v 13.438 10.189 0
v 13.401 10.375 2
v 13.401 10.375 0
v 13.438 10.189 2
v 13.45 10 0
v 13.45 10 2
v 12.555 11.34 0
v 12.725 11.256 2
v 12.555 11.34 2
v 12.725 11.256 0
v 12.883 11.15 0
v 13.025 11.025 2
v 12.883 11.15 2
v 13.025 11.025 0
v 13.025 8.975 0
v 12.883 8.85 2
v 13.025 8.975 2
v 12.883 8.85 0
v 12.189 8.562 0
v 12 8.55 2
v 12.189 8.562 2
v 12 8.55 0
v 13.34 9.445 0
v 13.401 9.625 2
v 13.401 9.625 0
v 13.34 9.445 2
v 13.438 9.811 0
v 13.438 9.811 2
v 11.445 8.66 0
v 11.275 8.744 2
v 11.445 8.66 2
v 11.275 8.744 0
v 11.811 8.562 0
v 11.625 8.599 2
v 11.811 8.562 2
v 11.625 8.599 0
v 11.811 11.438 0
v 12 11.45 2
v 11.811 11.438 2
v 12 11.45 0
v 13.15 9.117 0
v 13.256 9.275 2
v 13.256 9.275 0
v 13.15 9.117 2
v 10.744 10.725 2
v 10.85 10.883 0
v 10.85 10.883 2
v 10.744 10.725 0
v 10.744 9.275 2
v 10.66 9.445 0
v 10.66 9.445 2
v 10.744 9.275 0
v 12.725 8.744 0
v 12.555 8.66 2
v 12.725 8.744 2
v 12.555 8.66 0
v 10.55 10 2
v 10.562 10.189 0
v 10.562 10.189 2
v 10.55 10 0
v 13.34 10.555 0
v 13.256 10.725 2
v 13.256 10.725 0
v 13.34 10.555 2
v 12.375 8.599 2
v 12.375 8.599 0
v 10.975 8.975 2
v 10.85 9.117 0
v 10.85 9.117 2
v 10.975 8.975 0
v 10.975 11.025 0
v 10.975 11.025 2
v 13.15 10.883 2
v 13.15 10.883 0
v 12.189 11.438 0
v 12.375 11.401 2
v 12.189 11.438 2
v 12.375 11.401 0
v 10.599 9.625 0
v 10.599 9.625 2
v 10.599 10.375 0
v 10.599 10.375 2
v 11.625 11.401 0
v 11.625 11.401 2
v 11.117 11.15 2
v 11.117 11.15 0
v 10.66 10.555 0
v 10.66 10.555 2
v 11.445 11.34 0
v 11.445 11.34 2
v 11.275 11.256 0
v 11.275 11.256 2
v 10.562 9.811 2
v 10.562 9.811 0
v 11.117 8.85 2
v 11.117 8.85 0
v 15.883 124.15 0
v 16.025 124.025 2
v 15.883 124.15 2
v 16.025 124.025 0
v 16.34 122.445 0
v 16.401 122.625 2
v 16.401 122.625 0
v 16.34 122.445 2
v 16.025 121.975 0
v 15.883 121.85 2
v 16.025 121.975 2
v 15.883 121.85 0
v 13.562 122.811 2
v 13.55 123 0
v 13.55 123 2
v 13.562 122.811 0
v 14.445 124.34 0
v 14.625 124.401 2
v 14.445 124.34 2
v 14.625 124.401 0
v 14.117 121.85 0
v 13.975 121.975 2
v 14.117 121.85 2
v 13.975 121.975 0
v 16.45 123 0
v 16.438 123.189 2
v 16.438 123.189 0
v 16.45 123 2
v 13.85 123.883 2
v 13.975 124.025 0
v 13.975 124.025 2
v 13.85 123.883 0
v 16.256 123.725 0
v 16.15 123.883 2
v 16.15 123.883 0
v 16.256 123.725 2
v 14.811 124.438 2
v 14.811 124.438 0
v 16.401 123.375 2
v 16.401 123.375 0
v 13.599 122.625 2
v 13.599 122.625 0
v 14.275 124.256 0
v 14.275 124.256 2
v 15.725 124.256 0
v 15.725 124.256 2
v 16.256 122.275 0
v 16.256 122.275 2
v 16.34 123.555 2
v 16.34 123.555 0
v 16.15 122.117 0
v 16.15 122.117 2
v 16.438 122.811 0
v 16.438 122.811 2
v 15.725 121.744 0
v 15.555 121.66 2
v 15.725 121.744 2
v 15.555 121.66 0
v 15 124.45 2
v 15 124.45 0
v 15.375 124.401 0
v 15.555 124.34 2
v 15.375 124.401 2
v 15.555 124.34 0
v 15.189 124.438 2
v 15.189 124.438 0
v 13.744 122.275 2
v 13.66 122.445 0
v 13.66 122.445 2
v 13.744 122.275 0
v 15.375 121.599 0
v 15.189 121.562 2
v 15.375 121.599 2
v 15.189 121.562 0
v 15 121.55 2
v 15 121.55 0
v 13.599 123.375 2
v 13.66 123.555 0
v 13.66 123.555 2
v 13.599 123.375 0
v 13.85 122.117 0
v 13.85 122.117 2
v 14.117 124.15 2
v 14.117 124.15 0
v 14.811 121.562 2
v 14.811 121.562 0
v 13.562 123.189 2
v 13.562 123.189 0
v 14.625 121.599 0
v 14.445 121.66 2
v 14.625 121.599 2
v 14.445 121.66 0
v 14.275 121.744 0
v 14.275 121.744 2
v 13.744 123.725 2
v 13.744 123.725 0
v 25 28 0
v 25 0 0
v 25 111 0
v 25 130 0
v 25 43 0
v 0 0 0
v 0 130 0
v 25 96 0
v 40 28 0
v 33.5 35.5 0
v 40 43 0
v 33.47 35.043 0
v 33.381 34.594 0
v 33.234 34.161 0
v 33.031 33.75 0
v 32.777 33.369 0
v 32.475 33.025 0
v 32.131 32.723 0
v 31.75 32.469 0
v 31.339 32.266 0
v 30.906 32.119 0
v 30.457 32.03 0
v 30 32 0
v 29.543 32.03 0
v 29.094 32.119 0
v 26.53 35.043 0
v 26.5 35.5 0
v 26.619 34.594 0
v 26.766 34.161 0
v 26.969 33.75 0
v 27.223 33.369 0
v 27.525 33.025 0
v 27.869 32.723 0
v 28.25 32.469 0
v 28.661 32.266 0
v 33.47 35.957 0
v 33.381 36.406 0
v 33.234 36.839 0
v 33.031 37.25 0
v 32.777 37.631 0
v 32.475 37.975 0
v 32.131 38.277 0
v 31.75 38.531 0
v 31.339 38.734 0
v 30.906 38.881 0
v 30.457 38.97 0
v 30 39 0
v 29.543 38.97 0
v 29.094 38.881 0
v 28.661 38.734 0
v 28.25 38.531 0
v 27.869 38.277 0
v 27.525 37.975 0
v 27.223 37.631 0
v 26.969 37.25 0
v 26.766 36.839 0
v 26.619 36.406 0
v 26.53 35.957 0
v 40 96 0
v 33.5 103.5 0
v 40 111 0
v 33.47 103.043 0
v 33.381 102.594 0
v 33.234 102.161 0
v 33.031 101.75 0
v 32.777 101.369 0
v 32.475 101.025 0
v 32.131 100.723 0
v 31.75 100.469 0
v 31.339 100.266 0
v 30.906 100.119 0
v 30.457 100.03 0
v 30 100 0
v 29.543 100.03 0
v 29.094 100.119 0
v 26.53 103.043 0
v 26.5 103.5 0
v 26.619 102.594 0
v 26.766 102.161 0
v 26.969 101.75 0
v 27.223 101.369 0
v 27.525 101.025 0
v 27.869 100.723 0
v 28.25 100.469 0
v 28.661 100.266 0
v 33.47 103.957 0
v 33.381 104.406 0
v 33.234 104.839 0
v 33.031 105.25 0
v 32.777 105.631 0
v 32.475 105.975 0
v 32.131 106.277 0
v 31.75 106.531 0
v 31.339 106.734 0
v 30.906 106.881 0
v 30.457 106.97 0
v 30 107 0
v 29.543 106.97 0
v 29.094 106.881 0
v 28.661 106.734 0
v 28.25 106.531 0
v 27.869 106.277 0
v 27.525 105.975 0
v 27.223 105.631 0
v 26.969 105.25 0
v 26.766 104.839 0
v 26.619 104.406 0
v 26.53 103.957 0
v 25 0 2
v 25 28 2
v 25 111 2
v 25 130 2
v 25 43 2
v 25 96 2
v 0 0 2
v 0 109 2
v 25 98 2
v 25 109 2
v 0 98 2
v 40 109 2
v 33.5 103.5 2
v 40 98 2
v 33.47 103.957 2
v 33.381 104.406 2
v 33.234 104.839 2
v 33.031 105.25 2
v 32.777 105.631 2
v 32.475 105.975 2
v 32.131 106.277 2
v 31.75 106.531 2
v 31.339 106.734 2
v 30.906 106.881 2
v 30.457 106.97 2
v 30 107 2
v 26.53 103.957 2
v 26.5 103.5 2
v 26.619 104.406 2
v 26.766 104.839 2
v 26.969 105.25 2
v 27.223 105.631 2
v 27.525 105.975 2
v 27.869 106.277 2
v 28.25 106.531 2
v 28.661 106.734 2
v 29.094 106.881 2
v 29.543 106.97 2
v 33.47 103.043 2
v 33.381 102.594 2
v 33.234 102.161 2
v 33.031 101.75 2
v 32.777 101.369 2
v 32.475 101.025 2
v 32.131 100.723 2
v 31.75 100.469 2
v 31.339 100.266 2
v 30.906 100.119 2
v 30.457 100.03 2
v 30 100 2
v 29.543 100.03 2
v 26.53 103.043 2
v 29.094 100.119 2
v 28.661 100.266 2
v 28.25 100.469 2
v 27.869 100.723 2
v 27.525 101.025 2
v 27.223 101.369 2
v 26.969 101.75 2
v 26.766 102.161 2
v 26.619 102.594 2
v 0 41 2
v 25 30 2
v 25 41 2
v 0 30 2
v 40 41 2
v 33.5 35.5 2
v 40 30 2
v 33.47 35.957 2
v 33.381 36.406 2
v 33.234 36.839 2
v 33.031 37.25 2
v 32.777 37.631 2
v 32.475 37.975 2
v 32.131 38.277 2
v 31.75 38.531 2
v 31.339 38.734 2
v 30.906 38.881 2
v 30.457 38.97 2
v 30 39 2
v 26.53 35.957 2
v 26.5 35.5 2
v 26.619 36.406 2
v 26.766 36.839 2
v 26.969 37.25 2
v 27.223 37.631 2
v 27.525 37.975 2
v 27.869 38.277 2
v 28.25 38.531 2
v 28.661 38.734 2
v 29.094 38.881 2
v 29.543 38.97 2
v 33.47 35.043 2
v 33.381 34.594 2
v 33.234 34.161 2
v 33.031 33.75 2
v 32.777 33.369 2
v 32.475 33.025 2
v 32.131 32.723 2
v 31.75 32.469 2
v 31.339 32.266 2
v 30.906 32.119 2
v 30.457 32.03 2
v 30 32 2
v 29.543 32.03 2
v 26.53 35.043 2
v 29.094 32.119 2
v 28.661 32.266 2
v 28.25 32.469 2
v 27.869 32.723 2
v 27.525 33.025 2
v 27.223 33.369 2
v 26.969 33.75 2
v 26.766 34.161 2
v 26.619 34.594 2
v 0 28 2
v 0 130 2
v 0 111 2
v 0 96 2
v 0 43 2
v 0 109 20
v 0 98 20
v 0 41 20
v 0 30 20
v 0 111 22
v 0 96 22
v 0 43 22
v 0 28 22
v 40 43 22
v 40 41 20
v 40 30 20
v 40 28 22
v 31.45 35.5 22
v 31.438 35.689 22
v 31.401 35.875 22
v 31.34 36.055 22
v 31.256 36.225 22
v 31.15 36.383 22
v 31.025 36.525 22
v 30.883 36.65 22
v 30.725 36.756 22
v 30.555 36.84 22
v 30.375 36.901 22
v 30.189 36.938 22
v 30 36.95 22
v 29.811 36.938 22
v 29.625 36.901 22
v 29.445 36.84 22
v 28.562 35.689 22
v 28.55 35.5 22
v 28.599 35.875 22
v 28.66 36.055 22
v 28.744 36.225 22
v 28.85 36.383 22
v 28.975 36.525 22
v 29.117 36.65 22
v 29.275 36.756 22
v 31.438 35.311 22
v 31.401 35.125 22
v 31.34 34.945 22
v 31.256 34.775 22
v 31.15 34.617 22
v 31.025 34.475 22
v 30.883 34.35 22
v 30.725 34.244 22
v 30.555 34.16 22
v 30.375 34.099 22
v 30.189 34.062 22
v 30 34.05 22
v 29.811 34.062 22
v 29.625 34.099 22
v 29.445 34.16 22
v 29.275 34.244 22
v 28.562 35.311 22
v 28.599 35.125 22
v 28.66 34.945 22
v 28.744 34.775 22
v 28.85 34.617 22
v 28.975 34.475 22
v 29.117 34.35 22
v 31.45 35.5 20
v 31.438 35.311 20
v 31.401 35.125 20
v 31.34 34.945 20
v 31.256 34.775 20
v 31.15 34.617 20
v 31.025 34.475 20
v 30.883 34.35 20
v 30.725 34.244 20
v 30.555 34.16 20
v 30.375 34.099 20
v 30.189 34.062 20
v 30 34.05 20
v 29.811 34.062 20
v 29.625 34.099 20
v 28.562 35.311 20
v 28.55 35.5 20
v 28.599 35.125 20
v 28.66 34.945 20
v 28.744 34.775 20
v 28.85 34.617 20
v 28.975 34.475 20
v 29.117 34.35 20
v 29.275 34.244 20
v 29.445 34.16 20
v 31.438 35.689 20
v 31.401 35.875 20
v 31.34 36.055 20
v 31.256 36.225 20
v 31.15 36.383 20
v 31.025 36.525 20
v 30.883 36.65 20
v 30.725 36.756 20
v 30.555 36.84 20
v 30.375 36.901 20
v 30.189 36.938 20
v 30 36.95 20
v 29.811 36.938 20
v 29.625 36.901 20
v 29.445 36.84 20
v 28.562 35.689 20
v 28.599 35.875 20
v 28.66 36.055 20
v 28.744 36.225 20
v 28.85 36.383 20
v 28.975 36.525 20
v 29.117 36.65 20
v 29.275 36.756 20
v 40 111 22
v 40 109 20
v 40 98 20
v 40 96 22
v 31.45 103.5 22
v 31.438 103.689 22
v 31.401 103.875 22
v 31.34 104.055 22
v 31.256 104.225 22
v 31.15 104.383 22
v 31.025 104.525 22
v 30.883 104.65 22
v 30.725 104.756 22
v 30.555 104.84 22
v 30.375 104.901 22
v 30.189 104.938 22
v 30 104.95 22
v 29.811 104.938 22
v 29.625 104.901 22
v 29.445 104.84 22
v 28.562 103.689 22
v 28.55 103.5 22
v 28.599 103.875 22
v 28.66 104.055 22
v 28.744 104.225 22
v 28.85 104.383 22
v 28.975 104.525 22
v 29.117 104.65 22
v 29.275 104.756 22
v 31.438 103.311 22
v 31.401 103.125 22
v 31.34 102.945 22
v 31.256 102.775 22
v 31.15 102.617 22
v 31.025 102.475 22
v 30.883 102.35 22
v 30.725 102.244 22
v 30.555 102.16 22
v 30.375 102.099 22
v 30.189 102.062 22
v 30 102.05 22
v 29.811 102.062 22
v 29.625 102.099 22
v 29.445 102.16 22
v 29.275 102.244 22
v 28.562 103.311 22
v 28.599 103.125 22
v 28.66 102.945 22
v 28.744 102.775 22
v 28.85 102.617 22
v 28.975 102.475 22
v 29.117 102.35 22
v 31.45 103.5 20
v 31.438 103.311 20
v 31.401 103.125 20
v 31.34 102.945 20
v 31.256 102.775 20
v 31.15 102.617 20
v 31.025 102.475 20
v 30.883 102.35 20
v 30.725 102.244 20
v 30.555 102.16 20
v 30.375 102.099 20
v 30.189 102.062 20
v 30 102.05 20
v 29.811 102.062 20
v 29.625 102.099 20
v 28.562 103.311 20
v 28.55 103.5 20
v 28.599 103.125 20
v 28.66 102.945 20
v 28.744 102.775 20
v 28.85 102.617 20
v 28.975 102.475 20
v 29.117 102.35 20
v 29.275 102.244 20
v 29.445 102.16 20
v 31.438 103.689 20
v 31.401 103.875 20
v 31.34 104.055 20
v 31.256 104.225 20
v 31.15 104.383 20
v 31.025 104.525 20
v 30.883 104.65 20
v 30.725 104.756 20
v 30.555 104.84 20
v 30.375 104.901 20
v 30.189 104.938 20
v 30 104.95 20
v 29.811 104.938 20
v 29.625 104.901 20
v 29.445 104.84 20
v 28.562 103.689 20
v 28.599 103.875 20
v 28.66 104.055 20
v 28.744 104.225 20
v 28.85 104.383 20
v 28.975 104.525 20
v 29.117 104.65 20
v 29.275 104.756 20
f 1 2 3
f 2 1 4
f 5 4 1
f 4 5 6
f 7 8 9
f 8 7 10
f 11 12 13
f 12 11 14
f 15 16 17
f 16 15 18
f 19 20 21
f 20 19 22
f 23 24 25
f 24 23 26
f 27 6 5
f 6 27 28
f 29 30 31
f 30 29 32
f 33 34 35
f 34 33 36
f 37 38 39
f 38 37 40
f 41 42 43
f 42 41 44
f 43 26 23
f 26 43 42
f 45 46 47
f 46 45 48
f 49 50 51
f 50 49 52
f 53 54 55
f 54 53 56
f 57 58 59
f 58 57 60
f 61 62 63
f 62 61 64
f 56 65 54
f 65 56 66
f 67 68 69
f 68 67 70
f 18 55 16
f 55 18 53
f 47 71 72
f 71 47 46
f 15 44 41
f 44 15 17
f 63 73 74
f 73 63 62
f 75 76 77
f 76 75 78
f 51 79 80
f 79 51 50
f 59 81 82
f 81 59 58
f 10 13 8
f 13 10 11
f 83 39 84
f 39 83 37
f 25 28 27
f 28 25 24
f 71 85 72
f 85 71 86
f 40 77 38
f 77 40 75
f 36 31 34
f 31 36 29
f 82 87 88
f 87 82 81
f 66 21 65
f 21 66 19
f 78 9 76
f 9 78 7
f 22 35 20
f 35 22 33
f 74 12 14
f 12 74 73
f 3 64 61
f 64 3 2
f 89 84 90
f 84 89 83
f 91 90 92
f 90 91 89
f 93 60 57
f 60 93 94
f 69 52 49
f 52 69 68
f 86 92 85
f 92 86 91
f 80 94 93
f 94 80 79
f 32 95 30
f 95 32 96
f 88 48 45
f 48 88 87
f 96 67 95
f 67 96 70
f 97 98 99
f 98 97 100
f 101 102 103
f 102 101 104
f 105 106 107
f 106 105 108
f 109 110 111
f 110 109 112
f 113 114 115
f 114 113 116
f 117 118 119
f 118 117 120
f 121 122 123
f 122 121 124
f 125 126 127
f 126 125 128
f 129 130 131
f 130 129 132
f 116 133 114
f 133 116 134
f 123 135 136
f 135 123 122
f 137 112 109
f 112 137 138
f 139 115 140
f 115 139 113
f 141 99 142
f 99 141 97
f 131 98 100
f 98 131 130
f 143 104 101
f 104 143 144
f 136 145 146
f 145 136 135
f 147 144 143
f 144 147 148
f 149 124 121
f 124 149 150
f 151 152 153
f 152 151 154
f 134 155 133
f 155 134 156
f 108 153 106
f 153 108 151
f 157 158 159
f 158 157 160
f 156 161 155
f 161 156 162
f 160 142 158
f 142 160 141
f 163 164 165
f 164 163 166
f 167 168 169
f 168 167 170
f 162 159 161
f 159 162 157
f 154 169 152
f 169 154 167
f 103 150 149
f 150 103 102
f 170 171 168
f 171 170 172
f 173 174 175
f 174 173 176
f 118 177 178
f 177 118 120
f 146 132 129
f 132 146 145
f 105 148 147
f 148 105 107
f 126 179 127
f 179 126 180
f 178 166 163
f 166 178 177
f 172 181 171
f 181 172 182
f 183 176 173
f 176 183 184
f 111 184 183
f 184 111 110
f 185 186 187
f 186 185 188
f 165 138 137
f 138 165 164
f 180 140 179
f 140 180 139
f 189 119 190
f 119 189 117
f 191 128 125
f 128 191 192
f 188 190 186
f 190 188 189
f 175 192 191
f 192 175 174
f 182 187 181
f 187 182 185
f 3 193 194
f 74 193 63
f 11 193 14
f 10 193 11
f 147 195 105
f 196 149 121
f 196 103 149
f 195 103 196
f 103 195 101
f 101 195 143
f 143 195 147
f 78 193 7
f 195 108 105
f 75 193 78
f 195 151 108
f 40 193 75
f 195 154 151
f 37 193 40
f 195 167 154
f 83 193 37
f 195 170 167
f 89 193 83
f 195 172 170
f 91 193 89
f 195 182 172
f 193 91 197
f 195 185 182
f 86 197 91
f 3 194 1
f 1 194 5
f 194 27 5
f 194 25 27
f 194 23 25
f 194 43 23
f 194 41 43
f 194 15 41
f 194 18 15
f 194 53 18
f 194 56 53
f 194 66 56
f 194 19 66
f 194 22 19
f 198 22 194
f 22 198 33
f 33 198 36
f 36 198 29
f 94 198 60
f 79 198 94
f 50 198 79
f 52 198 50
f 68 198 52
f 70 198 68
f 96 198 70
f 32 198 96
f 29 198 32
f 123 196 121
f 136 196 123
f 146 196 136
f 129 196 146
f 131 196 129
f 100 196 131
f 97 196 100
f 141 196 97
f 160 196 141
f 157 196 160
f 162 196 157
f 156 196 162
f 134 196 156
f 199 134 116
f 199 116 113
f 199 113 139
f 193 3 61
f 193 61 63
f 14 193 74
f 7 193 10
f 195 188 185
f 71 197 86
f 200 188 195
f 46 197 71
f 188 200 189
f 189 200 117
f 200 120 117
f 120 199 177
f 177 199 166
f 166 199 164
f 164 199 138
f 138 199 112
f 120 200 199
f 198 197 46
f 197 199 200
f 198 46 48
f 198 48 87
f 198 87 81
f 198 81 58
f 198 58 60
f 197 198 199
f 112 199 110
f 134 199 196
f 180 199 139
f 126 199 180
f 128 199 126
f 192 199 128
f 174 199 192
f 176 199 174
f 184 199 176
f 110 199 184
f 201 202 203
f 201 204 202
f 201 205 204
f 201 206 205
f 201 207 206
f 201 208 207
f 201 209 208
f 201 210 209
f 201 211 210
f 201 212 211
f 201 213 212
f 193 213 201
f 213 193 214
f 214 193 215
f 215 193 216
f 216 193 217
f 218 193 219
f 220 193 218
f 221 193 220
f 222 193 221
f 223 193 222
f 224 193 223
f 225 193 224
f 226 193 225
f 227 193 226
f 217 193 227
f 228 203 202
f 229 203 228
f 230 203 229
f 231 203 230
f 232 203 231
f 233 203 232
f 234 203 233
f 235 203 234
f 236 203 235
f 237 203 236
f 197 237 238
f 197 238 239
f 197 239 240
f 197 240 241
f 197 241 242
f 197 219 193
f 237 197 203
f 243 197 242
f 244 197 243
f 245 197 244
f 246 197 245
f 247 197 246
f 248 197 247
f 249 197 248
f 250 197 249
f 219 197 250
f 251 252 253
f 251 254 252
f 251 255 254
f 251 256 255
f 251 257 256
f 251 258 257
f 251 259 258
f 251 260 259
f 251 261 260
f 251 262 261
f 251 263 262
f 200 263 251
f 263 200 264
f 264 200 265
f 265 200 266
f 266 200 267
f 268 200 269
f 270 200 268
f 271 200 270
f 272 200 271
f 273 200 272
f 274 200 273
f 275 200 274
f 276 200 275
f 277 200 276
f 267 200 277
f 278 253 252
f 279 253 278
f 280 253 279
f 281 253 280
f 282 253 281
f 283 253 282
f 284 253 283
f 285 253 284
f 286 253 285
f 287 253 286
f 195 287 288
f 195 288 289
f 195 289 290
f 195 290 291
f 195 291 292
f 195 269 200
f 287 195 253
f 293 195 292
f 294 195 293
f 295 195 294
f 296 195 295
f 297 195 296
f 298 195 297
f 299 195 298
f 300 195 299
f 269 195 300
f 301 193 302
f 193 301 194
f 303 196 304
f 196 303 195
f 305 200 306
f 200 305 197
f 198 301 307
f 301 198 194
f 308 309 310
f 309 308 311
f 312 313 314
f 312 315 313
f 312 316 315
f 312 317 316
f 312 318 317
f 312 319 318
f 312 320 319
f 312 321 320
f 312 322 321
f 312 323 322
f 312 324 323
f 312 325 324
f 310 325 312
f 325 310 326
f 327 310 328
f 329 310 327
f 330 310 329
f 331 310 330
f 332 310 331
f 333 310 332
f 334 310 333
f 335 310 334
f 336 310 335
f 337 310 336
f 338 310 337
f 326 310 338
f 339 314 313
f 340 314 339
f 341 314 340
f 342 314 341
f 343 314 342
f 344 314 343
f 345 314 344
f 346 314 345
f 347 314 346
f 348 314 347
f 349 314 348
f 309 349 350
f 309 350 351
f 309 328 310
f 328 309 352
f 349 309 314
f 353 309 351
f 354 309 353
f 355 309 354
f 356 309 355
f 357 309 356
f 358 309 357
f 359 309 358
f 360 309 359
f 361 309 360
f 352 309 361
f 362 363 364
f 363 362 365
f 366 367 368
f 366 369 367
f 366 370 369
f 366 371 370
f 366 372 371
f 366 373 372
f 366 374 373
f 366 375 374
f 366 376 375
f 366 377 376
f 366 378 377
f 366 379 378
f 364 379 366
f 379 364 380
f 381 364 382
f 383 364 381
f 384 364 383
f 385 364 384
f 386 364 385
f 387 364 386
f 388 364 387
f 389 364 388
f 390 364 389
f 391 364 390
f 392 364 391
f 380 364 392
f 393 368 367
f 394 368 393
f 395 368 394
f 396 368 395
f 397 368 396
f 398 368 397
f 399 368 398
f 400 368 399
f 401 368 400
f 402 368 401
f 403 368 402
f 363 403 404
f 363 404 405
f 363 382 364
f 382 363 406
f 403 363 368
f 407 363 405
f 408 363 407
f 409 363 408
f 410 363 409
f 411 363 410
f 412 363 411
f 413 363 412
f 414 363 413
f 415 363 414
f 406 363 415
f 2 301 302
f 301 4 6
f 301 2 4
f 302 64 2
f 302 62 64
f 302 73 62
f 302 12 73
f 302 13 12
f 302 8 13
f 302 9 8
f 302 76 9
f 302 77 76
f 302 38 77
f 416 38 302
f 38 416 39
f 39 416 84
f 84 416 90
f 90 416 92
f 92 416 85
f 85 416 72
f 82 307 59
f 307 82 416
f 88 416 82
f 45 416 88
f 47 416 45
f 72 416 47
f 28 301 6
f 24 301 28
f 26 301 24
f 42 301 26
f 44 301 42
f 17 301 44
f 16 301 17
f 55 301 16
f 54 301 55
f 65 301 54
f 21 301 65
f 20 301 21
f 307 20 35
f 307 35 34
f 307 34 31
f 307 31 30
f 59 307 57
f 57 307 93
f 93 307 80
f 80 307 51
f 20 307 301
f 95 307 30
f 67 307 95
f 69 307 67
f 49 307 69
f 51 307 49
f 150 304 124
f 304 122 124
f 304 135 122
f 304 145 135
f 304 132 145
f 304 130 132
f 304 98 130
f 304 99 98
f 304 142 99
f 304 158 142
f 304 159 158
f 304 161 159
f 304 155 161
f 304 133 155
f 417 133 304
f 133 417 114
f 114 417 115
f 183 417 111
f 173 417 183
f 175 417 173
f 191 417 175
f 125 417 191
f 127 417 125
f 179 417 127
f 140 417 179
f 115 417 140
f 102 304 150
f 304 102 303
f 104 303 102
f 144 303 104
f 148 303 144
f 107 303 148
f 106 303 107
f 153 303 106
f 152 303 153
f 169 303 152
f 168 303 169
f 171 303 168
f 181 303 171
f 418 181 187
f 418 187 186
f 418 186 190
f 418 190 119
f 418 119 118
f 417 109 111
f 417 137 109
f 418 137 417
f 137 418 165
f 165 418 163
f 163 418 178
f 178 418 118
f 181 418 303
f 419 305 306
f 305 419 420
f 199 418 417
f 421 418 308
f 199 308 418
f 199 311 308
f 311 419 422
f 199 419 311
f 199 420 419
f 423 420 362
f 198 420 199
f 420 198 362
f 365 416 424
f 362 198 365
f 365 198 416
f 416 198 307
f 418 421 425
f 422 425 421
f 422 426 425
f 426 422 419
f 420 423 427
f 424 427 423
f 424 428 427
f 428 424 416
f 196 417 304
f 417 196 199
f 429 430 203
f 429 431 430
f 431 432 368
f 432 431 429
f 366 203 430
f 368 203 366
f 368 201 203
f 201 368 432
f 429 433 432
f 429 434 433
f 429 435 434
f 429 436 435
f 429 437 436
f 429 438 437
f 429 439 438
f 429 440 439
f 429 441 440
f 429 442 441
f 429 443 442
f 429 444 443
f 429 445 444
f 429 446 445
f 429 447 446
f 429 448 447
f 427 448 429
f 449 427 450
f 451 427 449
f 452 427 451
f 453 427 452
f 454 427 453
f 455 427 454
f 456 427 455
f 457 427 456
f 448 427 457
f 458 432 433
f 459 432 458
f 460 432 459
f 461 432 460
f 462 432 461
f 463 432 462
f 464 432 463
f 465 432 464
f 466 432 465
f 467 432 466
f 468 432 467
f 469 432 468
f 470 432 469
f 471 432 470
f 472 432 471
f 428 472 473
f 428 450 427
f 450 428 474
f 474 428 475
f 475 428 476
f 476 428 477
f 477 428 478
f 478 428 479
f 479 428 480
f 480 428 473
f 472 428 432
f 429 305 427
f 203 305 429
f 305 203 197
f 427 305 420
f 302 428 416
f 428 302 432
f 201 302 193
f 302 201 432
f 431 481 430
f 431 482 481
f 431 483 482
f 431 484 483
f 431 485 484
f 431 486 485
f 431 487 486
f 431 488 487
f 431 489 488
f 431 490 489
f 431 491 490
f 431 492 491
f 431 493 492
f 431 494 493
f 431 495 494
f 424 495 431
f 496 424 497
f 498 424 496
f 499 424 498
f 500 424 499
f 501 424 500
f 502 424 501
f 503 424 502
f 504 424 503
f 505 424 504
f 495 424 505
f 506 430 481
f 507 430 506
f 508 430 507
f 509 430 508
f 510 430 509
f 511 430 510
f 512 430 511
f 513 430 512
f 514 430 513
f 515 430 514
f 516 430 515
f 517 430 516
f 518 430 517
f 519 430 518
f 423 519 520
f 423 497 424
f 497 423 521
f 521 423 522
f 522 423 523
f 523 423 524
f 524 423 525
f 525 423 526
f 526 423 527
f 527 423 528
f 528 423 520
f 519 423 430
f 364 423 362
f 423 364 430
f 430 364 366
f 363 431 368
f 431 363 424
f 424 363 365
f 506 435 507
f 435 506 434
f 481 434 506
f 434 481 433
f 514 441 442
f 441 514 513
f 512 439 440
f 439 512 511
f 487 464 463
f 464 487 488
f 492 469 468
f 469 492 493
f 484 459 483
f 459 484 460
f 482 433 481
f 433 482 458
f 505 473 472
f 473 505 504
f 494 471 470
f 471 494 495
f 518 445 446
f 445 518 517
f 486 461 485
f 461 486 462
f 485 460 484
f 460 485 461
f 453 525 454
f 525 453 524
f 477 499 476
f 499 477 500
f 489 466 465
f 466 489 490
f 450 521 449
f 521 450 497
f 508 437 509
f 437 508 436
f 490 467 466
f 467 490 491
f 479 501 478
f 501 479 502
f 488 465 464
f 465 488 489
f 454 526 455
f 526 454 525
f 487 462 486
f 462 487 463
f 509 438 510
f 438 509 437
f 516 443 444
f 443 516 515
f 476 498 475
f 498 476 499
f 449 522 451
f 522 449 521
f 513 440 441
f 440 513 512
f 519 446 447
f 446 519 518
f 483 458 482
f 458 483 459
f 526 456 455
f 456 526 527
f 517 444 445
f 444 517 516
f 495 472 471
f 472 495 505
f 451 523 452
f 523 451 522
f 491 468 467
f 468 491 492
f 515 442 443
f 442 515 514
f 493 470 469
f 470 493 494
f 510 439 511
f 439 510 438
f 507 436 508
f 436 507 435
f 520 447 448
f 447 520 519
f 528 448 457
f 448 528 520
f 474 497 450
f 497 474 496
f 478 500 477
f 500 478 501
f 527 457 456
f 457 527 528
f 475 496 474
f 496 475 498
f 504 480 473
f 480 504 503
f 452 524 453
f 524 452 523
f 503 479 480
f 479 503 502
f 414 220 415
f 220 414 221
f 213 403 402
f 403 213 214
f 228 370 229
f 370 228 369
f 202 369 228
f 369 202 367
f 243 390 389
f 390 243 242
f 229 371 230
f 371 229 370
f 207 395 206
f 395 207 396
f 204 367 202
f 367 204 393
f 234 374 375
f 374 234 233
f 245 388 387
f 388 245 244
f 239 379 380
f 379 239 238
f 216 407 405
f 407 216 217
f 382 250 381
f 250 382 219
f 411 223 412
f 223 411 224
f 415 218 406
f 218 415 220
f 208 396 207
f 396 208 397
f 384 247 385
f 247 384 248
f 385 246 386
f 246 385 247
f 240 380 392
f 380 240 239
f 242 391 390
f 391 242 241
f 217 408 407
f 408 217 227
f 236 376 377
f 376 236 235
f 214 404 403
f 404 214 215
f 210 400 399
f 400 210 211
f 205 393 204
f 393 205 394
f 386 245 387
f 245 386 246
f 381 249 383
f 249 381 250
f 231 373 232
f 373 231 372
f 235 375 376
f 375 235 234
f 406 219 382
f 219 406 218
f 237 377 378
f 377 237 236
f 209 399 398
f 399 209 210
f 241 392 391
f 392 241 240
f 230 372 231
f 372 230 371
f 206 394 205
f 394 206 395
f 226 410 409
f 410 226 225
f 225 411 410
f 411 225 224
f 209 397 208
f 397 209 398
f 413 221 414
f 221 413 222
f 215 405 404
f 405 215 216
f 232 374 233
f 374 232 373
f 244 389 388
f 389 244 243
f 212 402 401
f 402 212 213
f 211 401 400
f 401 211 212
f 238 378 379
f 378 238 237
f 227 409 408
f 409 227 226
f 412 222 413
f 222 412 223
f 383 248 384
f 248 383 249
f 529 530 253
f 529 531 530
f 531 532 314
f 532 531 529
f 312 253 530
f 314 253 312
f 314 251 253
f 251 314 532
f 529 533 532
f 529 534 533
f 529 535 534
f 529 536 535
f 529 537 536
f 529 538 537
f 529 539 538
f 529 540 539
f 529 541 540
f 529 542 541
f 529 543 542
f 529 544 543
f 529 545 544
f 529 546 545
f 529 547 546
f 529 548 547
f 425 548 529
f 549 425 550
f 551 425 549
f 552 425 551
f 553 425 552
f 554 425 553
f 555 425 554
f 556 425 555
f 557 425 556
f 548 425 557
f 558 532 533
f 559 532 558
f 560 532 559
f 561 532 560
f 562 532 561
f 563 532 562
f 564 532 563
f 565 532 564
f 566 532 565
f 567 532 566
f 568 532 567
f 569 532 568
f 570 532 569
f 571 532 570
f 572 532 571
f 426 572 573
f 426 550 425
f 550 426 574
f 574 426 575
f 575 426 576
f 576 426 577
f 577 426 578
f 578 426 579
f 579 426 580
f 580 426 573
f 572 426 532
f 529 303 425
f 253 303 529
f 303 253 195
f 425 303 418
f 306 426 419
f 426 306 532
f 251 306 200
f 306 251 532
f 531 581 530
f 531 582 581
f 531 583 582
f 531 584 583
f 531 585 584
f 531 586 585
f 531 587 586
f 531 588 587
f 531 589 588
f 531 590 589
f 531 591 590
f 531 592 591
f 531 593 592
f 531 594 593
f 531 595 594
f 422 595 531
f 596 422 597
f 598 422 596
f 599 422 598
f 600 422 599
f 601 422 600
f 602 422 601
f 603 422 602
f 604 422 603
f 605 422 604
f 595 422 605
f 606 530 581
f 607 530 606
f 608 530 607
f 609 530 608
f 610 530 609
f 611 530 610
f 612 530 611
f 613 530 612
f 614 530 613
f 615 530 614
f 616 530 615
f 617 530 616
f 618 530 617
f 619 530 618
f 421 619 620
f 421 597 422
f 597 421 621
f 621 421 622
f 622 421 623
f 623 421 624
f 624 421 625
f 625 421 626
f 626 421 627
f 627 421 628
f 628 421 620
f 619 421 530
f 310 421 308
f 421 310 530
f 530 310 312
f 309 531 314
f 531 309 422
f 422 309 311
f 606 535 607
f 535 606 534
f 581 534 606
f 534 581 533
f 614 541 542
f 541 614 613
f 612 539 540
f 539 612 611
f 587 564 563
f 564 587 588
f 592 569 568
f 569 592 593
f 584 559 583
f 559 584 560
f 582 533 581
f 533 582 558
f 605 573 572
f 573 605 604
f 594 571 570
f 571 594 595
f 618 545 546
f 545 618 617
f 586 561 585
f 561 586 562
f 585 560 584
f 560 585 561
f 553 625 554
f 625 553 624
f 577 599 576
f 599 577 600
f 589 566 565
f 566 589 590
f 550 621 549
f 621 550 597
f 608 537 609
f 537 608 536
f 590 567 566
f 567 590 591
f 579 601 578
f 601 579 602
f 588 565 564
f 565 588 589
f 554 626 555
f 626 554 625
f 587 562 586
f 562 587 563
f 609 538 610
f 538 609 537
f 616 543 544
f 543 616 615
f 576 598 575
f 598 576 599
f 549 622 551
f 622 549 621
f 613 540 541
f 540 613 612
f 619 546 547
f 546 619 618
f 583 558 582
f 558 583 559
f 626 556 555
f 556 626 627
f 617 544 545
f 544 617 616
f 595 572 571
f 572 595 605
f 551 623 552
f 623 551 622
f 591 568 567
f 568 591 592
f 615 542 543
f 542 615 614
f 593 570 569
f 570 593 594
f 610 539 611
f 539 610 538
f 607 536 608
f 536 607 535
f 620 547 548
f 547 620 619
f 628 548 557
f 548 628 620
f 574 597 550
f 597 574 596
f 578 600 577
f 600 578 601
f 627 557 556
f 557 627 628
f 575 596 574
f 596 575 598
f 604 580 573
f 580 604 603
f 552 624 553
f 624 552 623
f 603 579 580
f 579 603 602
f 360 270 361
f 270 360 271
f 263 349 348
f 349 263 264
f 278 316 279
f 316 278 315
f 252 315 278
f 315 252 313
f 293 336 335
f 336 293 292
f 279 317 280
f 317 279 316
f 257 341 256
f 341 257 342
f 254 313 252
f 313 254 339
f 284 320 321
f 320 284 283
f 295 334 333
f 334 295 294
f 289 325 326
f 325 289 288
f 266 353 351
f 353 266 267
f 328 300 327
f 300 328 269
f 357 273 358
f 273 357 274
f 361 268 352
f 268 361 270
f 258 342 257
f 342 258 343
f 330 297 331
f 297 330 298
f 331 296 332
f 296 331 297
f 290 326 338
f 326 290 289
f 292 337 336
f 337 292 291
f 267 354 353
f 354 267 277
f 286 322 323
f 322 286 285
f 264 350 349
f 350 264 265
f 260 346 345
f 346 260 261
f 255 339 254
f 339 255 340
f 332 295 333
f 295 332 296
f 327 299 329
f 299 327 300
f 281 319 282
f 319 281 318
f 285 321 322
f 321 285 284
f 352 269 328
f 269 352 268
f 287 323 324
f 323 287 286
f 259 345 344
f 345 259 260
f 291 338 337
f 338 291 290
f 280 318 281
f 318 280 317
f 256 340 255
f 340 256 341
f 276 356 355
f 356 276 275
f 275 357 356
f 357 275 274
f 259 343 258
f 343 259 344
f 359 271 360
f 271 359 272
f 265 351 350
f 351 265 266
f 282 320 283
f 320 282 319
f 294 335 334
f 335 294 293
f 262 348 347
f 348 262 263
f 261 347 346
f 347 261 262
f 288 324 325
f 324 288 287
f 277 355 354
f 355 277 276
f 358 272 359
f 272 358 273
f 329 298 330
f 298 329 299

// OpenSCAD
$fn = 48;

union() {
	difference() {
		linear_extrude(height = 2) {
			polygon(paths = [[0, 1, 2, 3]], points = [[0, 0], [0, 130], [25, 130], [25, 0]]);
		}
		union() {
			translate(v = [12, 10, -1]) {
				cylinder(d = 2.9000000000, h = 4);
			}
			translate(v = [15, 123, -1]) {
				cylinder(d = 2.9000000000, h = 4);
			}
		}
	}
	union() {
		translate(v = [0, 28, 0]) {
			difference() {
				cube(size = [40, 15, 22]);
				translate(v = [-1, 2, 2]) {
					cube(size = [42, 11, 18]);
				}
				translate(v = [30, 7.5000000000, 19]) {
					cylinder(d = 2.9000000000, h = 4);
				}
				translate(v = [30, 7.5000000000, -1]) {
					cylinder(d = 7, h = 4);
				}
			}
		}
		translate(v = [0, 96, 0]) {
			difference() {
				cube(size = [40, 15, 22]);
				translate(v = [-1, 2, 2]) {
					cube(size = [42, 11, 18]);
				}
				translate(v = [30, 7.5000000000, 19]) {
					cylinder(d = 2.9000000000, h = 4);
				}
				translate(v = [30, 7.5000000000, -1]) {
					cylinder(d = 7, h = 4);
				}
			}
		}
	}
}
/***********************************************
*********      SolidPython code:      **********
************************************************
 
#! /usr/bin/env python
# -*- coding: utf-8 -*-
from __future__ import division
import os
import sys

from solid import *
from solid.utils import *

SEGMENTS = 48

def holder():
    holder_x = 40
    holder_y = 15
    holder_z = 22
    upper_hole = translate([30, holder_y/2, holder_z - 3])(cylinder(d=2.9, h=4))
    bottom_hole = translate([30, holder_y/2, -1 ])(cylinder(d=7, h=4))
    holder_base = cube(size=[holder_x, holder_y, holder_z]) - (translate([-1, 2, 2])(cube(size=[holder_x + 2, holder_y - 4, holder_z - 4])))
    return holder_base - upper_hole - bottom_hole

def stand_base():
    height = 130
    width = 25
    return polygon(points = [[0, 0], [0, height], [width, height], [width, 0]])

def extruded_base():
    shape = stand_base()
    extruded = linear_extrude(height = 2)(shape)
    screw_hole = cylinder(d=2.9, h=4)
    hole_distance = 113
    screw_holes = translate([12,10,-1])(screw_hole) + translate([15,10 + hole_distance, -1])(screw_hole)
    holders = translate([0, 28, 0])(holder()) + translate([0, 96, 0])(holder())
    return (extruded - screw_holes) + holders

if __name__ == '__main__':
    out_dir = sys.argv[1] if len(sys.argv) > 1 else os.curdir
    file_out = os.path.join(out_dir, 'stand.scad')

    a = extruded_base()

    print("%(__file__)s: SCAD file written to: \n%(file_out)s" % vars())

    # Adding the file_header argument as shown allows you to change
    # the detail of arcs by changing the SEGMENTS variable.  This can
    # be expensive when making lots of small curves, but is otherwise
    # useful.
    scad_render_to_file(a, file_out, file_header='$fn = %s;' % SEGMENTS) 
 
************************************************/
